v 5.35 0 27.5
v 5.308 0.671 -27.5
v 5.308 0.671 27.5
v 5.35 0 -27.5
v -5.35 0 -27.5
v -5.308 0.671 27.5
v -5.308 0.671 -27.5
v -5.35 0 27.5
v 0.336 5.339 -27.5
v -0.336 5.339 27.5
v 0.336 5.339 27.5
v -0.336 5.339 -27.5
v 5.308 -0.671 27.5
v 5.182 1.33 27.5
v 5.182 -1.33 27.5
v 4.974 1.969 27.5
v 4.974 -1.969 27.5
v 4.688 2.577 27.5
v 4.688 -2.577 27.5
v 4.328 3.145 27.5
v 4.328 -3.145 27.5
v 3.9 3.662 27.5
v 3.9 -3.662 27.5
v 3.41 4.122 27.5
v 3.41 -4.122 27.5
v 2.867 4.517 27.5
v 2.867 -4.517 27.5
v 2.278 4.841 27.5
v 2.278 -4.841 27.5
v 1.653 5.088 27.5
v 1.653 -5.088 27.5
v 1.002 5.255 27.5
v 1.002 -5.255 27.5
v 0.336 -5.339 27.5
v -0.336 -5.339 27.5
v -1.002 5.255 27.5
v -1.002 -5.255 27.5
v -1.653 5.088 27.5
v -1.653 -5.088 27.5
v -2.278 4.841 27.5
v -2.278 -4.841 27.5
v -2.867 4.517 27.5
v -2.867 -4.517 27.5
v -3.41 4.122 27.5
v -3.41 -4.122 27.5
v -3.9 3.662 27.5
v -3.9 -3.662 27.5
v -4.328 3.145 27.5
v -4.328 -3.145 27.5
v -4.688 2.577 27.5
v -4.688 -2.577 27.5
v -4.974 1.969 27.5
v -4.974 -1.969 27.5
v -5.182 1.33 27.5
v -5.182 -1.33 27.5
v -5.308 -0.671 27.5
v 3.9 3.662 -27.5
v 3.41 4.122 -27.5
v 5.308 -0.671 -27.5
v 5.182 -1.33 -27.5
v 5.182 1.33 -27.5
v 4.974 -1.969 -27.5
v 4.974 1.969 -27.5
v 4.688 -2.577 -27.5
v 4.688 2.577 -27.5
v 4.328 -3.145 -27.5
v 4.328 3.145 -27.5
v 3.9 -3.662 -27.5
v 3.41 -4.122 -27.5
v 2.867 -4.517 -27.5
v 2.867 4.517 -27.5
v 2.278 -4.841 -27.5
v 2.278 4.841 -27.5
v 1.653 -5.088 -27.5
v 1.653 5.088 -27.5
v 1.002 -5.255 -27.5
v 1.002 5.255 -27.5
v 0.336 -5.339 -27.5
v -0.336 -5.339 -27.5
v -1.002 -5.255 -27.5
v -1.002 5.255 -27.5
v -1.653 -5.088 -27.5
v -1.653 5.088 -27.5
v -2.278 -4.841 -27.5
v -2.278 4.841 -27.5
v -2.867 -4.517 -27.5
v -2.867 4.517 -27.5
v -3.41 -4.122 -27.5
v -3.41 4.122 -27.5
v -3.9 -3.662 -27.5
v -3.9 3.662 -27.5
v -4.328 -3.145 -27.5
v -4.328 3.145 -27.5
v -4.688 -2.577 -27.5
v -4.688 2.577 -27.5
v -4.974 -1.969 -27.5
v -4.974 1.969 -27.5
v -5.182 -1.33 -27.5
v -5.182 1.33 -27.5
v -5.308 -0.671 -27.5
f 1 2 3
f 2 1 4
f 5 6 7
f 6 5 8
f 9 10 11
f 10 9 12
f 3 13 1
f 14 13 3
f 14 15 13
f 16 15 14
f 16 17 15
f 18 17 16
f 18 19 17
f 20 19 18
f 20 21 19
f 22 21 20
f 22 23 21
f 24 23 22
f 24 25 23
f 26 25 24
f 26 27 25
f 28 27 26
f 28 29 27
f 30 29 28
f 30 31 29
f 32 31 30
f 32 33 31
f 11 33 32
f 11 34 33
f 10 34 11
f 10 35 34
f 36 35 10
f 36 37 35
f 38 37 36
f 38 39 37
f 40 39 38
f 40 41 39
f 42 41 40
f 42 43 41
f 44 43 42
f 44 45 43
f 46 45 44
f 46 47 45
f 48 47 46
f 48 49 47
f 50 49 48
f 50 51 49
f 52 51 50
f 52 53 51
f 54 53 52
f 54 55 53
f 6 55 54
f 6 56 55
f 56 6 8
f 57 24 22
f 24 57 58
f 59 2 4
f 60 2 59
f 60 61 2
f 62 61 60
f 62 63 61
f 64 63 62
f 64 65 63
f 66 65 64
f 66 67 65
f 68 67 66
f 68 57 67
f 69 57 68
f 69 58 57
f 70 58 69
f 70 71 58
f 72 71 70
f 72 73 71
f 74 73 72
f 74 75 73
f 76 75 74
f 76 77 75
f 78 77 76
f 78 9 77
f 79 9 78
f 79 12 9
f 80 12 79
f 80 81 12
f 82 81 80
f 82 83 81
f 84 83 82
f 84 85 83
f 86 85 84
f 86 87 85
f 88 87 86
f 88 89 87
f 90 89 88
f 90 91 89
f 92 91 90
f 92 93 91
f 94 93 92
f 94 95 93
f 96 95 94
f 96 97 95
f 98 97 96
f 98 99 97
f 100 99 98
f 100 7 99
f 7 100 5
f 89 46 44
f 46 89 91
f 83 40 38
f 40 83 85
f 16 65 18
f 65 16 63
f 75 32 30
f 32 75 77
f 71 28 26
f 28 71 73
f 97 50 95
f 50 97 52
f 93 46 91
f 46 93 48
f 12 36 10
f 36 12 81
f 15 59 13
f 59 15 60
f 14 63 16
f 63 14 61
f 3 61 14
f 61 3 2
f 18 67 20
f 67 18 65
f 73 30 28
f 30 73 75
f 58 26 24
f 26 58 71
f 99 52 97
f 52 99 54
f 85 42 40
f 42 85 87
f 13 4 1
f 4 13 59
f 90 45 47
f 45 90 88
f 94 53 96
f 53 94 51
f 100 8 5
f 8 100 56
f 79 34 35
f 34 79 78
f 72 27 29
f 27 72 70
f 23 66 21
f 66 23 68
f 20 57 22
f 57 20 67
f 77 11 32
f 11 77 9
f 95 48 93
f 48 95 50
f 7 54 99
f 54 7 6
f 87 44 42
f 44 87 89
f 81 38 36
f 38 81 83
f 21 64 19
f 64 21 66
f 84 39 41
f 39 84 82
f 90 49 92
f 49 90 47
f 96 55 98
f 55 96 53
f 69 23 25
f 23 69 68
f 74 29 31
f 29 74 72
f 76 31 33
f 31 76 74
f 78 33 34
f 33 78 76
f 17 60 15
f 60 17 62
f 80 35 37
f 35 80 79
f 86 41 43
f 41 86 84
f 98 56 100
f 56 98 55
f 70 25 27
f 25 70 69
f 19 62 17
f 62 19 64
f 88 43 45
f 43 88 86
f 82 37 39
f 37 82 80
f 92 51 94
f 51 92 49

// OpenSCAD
$fn = 50;


difference() {
	union() {
		translate(v = [0, 0, -27.5000000000]) {
			cylinder(h = 55, r = 5.3500000000);
		}
	}
	union() {
		translate(v = [0, 0, -100.0000000000]) {
			cylinder(h = 200, r = 0);
		}
	}
}
